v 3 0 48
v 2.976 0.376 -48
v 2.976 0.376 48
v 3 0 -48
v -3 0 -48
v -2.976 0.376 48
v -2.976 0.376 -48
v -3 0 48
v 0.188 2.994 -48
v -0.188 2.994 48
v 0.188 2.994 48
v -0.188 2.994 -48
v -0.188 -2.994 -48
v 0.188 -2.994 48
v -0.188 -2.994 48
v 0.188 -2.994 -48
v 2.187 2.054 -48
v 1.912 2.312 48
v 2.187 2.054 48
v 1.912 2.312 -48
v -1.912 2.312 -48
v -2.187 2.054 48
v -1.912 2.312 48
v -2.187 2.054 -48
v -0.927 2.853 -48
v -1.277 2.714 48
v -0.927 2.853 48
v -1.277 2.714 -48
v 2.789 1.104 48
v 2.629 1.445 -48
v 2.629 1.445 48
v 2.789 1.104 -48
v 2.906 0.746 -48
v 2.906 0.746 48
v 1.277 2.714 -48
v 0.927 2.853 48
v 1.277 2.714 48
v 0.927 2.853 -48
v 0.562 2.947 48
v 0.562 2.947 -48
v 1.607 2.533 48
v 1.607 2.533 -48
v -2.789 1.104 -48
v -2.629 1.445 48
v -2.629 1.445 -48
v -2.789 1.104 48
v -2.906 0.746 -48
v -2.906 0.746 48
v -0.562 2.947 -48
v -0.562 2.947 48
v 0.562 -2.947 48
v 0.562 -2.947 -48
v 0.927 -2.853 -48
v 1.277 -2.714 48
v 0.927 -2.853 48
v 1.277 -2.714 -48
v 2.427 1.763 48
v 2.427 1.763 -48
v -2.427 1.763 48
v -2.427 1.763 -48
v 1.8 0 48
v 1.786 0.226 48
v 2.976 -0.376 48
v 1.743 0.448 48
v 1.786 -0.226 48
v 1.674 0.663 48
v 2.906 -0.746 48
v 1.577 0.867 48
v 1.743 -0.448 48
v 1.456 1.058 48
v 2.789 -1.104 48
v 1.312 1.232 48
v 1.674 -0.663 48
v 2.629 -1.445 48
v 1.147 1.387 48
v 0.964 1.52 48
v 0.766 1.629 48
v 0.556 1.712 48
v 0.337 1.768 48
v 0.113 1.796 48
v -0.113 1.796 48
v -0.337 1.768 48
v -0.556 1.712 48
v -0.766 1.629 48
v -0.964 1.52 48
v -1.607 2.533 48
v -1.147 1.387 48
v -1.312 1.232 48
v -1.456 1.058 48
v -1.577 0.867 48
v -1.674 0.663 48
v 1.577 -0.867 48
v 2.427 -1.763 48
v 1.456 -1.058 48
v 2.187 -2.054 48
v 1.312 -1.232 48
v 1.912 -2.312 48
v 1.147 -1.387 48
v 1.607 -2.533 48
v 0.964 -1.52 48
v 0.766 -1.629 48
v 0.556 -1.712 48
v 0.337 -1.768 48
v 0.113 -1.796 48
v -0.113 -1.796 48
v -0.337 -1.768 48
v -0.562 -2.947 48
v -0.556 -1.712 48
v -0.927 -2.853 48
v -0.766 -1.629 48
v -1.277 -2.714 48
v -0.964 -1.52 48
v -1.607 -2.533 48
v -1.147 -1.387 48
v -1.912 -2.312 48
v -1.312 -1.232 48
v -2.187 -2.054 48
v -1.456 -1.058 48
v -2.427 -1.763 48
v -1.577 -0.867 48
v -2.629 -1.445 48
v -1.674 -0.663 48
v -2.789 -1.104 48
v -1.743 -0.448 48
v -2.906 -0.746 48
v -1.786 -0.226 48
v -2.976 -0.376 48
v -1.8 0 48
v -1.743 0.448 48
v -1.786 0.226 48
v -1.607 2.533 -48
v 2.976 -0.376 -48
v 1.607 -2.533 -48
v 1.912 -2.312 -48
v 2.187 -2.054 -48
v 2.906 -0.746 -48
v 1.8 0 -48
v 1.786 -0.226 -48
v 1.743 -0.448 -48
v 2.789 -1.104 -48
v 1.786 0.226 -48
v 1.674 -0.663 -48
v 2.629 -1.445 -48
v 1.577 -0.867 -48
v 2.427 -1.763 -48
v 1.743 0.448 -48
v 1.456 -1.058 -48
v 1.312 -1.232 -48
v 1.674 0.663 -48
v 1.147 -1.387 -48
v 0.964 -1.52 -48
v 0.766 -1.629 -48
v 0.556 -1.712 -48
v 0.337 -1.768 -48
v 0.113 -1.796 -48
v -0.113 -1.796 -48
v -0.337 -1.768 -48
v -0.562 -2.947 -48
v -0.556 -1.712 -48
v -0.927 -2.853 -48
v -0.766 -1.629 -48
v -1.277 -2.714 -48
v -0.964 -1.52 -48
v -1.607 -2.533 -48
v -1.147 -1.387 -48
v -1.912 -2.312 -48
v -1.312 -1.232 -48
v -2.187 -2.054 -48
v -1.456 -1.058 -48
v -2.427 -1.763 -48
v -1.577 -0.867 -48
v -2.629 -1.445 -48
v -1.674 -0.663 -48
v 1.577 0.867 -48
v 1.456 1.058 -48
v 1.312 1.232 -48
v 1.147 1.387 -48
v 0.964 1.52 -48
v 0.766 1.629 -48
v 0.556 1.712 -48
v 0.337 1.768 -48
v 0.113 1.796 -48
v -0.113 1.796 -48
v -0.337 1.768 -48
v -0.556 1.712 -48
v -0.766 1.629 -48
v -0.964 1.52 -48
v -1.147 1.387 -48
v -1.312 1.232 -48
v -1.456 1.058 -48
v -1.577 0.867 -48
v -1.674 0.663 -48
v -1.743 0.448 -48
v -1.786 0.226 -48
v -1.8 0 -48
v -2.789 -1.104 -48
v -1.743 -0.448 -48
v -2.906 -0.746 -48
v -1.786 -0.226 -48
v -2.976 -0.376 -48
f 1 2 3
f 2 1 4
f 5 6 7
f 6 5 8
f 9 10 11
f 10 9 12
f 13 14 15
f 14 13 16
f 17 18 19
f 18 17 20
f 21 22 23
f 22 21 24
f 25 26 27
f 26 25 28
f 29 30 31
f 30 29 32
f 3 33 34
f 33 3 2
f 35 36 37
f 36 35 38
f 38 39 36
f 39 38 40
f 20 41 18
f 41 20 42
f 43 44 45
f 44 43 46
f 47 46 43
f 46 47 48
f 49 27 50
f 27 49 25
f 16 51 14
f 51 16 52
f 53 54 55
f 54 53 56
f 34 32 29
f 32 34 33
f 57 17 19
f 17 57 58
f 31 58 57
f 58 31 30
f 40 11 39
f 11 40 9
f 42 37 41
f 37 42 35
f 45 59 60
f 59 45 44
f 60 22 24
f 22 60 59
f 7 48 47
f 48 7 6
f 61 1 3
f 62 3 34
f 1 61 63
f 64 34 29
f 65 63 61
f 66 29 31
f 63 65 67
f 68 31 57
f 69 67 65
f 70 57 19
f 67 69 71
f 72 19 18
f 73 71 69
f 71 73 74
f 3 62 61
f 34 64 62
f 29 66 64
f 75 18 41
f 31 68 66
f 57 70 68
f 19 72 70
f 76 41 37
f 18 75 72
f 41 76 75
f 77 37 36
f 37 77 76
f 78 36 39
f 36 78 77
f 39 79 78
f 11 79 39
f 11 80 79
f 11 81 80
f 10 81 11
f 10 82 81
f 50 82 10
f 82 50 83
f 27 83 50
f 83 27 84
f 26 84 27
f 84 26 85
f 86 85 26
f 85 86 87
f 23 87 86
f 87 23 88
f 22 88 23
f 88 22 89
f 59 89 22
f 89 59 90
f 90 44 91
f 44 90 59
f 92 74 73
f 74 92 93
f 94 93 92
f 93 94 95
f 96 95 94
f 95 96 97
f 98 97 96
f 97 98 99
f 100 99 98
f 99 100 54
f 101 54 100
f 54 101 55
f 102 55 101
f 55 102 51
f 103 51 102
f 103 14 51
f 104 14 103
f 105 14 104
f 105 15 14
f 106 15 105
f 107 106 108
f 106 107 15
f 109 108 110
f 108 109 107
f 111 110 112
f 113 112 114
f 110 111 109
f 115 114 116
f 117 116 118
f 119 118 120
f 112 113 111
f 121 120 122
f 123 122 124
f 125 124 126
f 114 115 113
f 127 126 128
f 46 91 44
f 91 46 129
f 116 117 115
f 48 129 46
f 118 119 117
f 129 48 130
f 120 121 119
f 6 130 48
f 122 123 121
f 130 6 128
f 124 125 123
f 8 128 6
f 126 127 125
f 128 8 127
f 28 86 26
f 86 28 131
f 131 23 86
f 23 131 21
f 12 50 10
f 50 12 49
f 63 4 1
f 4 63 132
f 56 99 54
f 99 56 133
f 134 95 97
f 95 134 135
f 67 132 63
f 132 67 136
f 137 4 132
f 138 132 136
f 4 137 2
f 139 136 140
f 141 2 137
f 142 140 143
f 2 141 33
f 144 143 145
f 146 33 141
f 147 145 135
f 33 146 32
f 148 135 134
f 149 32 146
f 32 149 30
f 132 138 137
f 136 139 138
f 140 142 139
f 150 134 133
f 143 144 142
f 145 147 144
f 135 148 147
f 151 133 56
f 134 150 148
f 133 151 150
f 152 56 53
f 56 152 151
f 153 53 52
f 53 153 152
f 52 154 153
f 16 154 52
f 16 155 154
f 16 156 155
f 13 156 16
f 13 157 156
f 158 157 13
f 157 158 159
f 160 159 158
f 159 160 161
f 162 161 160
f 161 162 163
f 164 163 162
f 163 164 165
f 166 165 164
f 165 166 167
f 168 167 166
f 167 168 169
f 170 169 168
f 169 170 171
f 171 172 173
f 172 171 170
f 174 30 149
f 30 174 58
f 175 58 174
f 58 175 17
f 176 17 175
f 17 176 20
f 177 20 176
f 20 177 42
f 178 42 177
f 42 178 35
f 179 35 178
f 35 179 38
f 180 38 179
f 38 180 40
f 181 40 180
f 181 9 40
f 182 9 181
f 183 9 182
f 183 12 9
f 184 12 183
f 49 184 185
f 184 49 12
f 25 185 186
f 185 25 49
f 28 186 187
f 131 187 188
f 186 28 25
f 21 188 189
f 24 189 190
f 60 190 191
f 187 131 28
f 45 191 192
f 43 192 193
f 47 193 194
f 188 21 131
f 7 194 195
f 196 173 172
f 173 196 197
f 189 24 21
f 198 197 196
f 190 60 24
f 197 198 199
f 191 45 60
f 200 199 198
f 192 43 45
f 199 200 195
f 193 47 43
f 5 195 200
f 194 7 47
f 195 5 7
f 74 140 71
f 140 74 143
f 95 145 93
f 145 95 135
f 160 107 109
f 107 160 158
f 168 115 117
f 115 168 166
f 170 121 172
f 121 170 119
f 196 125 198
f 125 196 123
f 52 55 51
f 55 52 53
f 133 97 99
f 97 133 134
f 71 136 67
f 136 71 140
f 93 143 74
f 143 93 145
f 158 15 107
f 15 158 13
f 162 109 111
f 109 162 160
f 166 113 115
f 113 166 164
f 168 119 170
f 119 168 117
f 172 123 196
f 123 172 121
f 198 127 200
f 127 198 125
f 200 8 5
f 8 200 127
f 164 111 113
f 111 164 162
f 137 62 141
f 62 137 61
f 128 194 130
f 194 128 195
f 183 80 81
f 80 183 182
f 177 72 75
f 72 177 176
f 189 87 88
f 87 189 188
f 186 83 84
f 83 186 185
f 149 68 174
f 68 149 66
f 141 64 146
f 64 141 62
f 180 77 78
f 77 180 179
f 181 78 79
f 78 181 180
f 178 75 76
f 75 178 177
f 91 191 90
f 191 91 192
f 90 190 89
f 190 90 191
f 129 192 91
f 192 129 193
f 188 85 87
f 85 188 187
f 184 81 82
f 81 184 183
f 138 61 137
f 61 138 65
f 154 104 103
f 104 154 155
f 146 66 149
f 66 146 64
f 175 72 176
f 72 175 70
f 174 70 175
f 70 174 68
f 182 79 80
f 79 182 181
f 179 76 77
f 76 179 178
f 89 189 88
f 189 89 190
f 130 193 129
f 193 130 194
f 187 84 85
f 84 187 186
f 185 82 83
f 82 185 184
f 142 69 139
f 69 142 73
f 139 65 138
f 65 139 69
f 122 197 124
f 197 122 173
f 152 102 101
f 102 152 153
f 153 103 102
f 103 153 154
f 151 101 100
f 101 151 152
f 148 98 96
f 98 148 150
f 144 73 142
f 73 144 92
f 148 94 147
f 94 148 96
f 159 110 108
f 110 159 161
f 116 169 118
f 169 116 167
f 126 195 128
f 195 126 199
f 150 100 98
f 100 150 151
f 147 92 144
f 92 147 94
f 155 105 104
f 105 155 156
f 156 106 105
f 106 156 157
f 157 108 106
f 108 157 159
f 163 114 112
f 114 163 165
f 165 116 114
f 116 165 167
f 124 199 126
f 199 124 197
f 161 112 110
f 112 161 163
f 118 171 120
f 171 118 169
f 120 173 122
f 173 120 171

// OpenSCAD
$fn = 50;


difference() {
	union() {
		translate(v = [0, 0, -48.0000000000]) {
			cylinder(h = 96, r = 3.0000000000);
		}
	}
	union() {
		translate(v = [0, 0, -100.0000000000]) {
			cylinder(h = 200, r = 1.8000000000);
		}
	}
}
